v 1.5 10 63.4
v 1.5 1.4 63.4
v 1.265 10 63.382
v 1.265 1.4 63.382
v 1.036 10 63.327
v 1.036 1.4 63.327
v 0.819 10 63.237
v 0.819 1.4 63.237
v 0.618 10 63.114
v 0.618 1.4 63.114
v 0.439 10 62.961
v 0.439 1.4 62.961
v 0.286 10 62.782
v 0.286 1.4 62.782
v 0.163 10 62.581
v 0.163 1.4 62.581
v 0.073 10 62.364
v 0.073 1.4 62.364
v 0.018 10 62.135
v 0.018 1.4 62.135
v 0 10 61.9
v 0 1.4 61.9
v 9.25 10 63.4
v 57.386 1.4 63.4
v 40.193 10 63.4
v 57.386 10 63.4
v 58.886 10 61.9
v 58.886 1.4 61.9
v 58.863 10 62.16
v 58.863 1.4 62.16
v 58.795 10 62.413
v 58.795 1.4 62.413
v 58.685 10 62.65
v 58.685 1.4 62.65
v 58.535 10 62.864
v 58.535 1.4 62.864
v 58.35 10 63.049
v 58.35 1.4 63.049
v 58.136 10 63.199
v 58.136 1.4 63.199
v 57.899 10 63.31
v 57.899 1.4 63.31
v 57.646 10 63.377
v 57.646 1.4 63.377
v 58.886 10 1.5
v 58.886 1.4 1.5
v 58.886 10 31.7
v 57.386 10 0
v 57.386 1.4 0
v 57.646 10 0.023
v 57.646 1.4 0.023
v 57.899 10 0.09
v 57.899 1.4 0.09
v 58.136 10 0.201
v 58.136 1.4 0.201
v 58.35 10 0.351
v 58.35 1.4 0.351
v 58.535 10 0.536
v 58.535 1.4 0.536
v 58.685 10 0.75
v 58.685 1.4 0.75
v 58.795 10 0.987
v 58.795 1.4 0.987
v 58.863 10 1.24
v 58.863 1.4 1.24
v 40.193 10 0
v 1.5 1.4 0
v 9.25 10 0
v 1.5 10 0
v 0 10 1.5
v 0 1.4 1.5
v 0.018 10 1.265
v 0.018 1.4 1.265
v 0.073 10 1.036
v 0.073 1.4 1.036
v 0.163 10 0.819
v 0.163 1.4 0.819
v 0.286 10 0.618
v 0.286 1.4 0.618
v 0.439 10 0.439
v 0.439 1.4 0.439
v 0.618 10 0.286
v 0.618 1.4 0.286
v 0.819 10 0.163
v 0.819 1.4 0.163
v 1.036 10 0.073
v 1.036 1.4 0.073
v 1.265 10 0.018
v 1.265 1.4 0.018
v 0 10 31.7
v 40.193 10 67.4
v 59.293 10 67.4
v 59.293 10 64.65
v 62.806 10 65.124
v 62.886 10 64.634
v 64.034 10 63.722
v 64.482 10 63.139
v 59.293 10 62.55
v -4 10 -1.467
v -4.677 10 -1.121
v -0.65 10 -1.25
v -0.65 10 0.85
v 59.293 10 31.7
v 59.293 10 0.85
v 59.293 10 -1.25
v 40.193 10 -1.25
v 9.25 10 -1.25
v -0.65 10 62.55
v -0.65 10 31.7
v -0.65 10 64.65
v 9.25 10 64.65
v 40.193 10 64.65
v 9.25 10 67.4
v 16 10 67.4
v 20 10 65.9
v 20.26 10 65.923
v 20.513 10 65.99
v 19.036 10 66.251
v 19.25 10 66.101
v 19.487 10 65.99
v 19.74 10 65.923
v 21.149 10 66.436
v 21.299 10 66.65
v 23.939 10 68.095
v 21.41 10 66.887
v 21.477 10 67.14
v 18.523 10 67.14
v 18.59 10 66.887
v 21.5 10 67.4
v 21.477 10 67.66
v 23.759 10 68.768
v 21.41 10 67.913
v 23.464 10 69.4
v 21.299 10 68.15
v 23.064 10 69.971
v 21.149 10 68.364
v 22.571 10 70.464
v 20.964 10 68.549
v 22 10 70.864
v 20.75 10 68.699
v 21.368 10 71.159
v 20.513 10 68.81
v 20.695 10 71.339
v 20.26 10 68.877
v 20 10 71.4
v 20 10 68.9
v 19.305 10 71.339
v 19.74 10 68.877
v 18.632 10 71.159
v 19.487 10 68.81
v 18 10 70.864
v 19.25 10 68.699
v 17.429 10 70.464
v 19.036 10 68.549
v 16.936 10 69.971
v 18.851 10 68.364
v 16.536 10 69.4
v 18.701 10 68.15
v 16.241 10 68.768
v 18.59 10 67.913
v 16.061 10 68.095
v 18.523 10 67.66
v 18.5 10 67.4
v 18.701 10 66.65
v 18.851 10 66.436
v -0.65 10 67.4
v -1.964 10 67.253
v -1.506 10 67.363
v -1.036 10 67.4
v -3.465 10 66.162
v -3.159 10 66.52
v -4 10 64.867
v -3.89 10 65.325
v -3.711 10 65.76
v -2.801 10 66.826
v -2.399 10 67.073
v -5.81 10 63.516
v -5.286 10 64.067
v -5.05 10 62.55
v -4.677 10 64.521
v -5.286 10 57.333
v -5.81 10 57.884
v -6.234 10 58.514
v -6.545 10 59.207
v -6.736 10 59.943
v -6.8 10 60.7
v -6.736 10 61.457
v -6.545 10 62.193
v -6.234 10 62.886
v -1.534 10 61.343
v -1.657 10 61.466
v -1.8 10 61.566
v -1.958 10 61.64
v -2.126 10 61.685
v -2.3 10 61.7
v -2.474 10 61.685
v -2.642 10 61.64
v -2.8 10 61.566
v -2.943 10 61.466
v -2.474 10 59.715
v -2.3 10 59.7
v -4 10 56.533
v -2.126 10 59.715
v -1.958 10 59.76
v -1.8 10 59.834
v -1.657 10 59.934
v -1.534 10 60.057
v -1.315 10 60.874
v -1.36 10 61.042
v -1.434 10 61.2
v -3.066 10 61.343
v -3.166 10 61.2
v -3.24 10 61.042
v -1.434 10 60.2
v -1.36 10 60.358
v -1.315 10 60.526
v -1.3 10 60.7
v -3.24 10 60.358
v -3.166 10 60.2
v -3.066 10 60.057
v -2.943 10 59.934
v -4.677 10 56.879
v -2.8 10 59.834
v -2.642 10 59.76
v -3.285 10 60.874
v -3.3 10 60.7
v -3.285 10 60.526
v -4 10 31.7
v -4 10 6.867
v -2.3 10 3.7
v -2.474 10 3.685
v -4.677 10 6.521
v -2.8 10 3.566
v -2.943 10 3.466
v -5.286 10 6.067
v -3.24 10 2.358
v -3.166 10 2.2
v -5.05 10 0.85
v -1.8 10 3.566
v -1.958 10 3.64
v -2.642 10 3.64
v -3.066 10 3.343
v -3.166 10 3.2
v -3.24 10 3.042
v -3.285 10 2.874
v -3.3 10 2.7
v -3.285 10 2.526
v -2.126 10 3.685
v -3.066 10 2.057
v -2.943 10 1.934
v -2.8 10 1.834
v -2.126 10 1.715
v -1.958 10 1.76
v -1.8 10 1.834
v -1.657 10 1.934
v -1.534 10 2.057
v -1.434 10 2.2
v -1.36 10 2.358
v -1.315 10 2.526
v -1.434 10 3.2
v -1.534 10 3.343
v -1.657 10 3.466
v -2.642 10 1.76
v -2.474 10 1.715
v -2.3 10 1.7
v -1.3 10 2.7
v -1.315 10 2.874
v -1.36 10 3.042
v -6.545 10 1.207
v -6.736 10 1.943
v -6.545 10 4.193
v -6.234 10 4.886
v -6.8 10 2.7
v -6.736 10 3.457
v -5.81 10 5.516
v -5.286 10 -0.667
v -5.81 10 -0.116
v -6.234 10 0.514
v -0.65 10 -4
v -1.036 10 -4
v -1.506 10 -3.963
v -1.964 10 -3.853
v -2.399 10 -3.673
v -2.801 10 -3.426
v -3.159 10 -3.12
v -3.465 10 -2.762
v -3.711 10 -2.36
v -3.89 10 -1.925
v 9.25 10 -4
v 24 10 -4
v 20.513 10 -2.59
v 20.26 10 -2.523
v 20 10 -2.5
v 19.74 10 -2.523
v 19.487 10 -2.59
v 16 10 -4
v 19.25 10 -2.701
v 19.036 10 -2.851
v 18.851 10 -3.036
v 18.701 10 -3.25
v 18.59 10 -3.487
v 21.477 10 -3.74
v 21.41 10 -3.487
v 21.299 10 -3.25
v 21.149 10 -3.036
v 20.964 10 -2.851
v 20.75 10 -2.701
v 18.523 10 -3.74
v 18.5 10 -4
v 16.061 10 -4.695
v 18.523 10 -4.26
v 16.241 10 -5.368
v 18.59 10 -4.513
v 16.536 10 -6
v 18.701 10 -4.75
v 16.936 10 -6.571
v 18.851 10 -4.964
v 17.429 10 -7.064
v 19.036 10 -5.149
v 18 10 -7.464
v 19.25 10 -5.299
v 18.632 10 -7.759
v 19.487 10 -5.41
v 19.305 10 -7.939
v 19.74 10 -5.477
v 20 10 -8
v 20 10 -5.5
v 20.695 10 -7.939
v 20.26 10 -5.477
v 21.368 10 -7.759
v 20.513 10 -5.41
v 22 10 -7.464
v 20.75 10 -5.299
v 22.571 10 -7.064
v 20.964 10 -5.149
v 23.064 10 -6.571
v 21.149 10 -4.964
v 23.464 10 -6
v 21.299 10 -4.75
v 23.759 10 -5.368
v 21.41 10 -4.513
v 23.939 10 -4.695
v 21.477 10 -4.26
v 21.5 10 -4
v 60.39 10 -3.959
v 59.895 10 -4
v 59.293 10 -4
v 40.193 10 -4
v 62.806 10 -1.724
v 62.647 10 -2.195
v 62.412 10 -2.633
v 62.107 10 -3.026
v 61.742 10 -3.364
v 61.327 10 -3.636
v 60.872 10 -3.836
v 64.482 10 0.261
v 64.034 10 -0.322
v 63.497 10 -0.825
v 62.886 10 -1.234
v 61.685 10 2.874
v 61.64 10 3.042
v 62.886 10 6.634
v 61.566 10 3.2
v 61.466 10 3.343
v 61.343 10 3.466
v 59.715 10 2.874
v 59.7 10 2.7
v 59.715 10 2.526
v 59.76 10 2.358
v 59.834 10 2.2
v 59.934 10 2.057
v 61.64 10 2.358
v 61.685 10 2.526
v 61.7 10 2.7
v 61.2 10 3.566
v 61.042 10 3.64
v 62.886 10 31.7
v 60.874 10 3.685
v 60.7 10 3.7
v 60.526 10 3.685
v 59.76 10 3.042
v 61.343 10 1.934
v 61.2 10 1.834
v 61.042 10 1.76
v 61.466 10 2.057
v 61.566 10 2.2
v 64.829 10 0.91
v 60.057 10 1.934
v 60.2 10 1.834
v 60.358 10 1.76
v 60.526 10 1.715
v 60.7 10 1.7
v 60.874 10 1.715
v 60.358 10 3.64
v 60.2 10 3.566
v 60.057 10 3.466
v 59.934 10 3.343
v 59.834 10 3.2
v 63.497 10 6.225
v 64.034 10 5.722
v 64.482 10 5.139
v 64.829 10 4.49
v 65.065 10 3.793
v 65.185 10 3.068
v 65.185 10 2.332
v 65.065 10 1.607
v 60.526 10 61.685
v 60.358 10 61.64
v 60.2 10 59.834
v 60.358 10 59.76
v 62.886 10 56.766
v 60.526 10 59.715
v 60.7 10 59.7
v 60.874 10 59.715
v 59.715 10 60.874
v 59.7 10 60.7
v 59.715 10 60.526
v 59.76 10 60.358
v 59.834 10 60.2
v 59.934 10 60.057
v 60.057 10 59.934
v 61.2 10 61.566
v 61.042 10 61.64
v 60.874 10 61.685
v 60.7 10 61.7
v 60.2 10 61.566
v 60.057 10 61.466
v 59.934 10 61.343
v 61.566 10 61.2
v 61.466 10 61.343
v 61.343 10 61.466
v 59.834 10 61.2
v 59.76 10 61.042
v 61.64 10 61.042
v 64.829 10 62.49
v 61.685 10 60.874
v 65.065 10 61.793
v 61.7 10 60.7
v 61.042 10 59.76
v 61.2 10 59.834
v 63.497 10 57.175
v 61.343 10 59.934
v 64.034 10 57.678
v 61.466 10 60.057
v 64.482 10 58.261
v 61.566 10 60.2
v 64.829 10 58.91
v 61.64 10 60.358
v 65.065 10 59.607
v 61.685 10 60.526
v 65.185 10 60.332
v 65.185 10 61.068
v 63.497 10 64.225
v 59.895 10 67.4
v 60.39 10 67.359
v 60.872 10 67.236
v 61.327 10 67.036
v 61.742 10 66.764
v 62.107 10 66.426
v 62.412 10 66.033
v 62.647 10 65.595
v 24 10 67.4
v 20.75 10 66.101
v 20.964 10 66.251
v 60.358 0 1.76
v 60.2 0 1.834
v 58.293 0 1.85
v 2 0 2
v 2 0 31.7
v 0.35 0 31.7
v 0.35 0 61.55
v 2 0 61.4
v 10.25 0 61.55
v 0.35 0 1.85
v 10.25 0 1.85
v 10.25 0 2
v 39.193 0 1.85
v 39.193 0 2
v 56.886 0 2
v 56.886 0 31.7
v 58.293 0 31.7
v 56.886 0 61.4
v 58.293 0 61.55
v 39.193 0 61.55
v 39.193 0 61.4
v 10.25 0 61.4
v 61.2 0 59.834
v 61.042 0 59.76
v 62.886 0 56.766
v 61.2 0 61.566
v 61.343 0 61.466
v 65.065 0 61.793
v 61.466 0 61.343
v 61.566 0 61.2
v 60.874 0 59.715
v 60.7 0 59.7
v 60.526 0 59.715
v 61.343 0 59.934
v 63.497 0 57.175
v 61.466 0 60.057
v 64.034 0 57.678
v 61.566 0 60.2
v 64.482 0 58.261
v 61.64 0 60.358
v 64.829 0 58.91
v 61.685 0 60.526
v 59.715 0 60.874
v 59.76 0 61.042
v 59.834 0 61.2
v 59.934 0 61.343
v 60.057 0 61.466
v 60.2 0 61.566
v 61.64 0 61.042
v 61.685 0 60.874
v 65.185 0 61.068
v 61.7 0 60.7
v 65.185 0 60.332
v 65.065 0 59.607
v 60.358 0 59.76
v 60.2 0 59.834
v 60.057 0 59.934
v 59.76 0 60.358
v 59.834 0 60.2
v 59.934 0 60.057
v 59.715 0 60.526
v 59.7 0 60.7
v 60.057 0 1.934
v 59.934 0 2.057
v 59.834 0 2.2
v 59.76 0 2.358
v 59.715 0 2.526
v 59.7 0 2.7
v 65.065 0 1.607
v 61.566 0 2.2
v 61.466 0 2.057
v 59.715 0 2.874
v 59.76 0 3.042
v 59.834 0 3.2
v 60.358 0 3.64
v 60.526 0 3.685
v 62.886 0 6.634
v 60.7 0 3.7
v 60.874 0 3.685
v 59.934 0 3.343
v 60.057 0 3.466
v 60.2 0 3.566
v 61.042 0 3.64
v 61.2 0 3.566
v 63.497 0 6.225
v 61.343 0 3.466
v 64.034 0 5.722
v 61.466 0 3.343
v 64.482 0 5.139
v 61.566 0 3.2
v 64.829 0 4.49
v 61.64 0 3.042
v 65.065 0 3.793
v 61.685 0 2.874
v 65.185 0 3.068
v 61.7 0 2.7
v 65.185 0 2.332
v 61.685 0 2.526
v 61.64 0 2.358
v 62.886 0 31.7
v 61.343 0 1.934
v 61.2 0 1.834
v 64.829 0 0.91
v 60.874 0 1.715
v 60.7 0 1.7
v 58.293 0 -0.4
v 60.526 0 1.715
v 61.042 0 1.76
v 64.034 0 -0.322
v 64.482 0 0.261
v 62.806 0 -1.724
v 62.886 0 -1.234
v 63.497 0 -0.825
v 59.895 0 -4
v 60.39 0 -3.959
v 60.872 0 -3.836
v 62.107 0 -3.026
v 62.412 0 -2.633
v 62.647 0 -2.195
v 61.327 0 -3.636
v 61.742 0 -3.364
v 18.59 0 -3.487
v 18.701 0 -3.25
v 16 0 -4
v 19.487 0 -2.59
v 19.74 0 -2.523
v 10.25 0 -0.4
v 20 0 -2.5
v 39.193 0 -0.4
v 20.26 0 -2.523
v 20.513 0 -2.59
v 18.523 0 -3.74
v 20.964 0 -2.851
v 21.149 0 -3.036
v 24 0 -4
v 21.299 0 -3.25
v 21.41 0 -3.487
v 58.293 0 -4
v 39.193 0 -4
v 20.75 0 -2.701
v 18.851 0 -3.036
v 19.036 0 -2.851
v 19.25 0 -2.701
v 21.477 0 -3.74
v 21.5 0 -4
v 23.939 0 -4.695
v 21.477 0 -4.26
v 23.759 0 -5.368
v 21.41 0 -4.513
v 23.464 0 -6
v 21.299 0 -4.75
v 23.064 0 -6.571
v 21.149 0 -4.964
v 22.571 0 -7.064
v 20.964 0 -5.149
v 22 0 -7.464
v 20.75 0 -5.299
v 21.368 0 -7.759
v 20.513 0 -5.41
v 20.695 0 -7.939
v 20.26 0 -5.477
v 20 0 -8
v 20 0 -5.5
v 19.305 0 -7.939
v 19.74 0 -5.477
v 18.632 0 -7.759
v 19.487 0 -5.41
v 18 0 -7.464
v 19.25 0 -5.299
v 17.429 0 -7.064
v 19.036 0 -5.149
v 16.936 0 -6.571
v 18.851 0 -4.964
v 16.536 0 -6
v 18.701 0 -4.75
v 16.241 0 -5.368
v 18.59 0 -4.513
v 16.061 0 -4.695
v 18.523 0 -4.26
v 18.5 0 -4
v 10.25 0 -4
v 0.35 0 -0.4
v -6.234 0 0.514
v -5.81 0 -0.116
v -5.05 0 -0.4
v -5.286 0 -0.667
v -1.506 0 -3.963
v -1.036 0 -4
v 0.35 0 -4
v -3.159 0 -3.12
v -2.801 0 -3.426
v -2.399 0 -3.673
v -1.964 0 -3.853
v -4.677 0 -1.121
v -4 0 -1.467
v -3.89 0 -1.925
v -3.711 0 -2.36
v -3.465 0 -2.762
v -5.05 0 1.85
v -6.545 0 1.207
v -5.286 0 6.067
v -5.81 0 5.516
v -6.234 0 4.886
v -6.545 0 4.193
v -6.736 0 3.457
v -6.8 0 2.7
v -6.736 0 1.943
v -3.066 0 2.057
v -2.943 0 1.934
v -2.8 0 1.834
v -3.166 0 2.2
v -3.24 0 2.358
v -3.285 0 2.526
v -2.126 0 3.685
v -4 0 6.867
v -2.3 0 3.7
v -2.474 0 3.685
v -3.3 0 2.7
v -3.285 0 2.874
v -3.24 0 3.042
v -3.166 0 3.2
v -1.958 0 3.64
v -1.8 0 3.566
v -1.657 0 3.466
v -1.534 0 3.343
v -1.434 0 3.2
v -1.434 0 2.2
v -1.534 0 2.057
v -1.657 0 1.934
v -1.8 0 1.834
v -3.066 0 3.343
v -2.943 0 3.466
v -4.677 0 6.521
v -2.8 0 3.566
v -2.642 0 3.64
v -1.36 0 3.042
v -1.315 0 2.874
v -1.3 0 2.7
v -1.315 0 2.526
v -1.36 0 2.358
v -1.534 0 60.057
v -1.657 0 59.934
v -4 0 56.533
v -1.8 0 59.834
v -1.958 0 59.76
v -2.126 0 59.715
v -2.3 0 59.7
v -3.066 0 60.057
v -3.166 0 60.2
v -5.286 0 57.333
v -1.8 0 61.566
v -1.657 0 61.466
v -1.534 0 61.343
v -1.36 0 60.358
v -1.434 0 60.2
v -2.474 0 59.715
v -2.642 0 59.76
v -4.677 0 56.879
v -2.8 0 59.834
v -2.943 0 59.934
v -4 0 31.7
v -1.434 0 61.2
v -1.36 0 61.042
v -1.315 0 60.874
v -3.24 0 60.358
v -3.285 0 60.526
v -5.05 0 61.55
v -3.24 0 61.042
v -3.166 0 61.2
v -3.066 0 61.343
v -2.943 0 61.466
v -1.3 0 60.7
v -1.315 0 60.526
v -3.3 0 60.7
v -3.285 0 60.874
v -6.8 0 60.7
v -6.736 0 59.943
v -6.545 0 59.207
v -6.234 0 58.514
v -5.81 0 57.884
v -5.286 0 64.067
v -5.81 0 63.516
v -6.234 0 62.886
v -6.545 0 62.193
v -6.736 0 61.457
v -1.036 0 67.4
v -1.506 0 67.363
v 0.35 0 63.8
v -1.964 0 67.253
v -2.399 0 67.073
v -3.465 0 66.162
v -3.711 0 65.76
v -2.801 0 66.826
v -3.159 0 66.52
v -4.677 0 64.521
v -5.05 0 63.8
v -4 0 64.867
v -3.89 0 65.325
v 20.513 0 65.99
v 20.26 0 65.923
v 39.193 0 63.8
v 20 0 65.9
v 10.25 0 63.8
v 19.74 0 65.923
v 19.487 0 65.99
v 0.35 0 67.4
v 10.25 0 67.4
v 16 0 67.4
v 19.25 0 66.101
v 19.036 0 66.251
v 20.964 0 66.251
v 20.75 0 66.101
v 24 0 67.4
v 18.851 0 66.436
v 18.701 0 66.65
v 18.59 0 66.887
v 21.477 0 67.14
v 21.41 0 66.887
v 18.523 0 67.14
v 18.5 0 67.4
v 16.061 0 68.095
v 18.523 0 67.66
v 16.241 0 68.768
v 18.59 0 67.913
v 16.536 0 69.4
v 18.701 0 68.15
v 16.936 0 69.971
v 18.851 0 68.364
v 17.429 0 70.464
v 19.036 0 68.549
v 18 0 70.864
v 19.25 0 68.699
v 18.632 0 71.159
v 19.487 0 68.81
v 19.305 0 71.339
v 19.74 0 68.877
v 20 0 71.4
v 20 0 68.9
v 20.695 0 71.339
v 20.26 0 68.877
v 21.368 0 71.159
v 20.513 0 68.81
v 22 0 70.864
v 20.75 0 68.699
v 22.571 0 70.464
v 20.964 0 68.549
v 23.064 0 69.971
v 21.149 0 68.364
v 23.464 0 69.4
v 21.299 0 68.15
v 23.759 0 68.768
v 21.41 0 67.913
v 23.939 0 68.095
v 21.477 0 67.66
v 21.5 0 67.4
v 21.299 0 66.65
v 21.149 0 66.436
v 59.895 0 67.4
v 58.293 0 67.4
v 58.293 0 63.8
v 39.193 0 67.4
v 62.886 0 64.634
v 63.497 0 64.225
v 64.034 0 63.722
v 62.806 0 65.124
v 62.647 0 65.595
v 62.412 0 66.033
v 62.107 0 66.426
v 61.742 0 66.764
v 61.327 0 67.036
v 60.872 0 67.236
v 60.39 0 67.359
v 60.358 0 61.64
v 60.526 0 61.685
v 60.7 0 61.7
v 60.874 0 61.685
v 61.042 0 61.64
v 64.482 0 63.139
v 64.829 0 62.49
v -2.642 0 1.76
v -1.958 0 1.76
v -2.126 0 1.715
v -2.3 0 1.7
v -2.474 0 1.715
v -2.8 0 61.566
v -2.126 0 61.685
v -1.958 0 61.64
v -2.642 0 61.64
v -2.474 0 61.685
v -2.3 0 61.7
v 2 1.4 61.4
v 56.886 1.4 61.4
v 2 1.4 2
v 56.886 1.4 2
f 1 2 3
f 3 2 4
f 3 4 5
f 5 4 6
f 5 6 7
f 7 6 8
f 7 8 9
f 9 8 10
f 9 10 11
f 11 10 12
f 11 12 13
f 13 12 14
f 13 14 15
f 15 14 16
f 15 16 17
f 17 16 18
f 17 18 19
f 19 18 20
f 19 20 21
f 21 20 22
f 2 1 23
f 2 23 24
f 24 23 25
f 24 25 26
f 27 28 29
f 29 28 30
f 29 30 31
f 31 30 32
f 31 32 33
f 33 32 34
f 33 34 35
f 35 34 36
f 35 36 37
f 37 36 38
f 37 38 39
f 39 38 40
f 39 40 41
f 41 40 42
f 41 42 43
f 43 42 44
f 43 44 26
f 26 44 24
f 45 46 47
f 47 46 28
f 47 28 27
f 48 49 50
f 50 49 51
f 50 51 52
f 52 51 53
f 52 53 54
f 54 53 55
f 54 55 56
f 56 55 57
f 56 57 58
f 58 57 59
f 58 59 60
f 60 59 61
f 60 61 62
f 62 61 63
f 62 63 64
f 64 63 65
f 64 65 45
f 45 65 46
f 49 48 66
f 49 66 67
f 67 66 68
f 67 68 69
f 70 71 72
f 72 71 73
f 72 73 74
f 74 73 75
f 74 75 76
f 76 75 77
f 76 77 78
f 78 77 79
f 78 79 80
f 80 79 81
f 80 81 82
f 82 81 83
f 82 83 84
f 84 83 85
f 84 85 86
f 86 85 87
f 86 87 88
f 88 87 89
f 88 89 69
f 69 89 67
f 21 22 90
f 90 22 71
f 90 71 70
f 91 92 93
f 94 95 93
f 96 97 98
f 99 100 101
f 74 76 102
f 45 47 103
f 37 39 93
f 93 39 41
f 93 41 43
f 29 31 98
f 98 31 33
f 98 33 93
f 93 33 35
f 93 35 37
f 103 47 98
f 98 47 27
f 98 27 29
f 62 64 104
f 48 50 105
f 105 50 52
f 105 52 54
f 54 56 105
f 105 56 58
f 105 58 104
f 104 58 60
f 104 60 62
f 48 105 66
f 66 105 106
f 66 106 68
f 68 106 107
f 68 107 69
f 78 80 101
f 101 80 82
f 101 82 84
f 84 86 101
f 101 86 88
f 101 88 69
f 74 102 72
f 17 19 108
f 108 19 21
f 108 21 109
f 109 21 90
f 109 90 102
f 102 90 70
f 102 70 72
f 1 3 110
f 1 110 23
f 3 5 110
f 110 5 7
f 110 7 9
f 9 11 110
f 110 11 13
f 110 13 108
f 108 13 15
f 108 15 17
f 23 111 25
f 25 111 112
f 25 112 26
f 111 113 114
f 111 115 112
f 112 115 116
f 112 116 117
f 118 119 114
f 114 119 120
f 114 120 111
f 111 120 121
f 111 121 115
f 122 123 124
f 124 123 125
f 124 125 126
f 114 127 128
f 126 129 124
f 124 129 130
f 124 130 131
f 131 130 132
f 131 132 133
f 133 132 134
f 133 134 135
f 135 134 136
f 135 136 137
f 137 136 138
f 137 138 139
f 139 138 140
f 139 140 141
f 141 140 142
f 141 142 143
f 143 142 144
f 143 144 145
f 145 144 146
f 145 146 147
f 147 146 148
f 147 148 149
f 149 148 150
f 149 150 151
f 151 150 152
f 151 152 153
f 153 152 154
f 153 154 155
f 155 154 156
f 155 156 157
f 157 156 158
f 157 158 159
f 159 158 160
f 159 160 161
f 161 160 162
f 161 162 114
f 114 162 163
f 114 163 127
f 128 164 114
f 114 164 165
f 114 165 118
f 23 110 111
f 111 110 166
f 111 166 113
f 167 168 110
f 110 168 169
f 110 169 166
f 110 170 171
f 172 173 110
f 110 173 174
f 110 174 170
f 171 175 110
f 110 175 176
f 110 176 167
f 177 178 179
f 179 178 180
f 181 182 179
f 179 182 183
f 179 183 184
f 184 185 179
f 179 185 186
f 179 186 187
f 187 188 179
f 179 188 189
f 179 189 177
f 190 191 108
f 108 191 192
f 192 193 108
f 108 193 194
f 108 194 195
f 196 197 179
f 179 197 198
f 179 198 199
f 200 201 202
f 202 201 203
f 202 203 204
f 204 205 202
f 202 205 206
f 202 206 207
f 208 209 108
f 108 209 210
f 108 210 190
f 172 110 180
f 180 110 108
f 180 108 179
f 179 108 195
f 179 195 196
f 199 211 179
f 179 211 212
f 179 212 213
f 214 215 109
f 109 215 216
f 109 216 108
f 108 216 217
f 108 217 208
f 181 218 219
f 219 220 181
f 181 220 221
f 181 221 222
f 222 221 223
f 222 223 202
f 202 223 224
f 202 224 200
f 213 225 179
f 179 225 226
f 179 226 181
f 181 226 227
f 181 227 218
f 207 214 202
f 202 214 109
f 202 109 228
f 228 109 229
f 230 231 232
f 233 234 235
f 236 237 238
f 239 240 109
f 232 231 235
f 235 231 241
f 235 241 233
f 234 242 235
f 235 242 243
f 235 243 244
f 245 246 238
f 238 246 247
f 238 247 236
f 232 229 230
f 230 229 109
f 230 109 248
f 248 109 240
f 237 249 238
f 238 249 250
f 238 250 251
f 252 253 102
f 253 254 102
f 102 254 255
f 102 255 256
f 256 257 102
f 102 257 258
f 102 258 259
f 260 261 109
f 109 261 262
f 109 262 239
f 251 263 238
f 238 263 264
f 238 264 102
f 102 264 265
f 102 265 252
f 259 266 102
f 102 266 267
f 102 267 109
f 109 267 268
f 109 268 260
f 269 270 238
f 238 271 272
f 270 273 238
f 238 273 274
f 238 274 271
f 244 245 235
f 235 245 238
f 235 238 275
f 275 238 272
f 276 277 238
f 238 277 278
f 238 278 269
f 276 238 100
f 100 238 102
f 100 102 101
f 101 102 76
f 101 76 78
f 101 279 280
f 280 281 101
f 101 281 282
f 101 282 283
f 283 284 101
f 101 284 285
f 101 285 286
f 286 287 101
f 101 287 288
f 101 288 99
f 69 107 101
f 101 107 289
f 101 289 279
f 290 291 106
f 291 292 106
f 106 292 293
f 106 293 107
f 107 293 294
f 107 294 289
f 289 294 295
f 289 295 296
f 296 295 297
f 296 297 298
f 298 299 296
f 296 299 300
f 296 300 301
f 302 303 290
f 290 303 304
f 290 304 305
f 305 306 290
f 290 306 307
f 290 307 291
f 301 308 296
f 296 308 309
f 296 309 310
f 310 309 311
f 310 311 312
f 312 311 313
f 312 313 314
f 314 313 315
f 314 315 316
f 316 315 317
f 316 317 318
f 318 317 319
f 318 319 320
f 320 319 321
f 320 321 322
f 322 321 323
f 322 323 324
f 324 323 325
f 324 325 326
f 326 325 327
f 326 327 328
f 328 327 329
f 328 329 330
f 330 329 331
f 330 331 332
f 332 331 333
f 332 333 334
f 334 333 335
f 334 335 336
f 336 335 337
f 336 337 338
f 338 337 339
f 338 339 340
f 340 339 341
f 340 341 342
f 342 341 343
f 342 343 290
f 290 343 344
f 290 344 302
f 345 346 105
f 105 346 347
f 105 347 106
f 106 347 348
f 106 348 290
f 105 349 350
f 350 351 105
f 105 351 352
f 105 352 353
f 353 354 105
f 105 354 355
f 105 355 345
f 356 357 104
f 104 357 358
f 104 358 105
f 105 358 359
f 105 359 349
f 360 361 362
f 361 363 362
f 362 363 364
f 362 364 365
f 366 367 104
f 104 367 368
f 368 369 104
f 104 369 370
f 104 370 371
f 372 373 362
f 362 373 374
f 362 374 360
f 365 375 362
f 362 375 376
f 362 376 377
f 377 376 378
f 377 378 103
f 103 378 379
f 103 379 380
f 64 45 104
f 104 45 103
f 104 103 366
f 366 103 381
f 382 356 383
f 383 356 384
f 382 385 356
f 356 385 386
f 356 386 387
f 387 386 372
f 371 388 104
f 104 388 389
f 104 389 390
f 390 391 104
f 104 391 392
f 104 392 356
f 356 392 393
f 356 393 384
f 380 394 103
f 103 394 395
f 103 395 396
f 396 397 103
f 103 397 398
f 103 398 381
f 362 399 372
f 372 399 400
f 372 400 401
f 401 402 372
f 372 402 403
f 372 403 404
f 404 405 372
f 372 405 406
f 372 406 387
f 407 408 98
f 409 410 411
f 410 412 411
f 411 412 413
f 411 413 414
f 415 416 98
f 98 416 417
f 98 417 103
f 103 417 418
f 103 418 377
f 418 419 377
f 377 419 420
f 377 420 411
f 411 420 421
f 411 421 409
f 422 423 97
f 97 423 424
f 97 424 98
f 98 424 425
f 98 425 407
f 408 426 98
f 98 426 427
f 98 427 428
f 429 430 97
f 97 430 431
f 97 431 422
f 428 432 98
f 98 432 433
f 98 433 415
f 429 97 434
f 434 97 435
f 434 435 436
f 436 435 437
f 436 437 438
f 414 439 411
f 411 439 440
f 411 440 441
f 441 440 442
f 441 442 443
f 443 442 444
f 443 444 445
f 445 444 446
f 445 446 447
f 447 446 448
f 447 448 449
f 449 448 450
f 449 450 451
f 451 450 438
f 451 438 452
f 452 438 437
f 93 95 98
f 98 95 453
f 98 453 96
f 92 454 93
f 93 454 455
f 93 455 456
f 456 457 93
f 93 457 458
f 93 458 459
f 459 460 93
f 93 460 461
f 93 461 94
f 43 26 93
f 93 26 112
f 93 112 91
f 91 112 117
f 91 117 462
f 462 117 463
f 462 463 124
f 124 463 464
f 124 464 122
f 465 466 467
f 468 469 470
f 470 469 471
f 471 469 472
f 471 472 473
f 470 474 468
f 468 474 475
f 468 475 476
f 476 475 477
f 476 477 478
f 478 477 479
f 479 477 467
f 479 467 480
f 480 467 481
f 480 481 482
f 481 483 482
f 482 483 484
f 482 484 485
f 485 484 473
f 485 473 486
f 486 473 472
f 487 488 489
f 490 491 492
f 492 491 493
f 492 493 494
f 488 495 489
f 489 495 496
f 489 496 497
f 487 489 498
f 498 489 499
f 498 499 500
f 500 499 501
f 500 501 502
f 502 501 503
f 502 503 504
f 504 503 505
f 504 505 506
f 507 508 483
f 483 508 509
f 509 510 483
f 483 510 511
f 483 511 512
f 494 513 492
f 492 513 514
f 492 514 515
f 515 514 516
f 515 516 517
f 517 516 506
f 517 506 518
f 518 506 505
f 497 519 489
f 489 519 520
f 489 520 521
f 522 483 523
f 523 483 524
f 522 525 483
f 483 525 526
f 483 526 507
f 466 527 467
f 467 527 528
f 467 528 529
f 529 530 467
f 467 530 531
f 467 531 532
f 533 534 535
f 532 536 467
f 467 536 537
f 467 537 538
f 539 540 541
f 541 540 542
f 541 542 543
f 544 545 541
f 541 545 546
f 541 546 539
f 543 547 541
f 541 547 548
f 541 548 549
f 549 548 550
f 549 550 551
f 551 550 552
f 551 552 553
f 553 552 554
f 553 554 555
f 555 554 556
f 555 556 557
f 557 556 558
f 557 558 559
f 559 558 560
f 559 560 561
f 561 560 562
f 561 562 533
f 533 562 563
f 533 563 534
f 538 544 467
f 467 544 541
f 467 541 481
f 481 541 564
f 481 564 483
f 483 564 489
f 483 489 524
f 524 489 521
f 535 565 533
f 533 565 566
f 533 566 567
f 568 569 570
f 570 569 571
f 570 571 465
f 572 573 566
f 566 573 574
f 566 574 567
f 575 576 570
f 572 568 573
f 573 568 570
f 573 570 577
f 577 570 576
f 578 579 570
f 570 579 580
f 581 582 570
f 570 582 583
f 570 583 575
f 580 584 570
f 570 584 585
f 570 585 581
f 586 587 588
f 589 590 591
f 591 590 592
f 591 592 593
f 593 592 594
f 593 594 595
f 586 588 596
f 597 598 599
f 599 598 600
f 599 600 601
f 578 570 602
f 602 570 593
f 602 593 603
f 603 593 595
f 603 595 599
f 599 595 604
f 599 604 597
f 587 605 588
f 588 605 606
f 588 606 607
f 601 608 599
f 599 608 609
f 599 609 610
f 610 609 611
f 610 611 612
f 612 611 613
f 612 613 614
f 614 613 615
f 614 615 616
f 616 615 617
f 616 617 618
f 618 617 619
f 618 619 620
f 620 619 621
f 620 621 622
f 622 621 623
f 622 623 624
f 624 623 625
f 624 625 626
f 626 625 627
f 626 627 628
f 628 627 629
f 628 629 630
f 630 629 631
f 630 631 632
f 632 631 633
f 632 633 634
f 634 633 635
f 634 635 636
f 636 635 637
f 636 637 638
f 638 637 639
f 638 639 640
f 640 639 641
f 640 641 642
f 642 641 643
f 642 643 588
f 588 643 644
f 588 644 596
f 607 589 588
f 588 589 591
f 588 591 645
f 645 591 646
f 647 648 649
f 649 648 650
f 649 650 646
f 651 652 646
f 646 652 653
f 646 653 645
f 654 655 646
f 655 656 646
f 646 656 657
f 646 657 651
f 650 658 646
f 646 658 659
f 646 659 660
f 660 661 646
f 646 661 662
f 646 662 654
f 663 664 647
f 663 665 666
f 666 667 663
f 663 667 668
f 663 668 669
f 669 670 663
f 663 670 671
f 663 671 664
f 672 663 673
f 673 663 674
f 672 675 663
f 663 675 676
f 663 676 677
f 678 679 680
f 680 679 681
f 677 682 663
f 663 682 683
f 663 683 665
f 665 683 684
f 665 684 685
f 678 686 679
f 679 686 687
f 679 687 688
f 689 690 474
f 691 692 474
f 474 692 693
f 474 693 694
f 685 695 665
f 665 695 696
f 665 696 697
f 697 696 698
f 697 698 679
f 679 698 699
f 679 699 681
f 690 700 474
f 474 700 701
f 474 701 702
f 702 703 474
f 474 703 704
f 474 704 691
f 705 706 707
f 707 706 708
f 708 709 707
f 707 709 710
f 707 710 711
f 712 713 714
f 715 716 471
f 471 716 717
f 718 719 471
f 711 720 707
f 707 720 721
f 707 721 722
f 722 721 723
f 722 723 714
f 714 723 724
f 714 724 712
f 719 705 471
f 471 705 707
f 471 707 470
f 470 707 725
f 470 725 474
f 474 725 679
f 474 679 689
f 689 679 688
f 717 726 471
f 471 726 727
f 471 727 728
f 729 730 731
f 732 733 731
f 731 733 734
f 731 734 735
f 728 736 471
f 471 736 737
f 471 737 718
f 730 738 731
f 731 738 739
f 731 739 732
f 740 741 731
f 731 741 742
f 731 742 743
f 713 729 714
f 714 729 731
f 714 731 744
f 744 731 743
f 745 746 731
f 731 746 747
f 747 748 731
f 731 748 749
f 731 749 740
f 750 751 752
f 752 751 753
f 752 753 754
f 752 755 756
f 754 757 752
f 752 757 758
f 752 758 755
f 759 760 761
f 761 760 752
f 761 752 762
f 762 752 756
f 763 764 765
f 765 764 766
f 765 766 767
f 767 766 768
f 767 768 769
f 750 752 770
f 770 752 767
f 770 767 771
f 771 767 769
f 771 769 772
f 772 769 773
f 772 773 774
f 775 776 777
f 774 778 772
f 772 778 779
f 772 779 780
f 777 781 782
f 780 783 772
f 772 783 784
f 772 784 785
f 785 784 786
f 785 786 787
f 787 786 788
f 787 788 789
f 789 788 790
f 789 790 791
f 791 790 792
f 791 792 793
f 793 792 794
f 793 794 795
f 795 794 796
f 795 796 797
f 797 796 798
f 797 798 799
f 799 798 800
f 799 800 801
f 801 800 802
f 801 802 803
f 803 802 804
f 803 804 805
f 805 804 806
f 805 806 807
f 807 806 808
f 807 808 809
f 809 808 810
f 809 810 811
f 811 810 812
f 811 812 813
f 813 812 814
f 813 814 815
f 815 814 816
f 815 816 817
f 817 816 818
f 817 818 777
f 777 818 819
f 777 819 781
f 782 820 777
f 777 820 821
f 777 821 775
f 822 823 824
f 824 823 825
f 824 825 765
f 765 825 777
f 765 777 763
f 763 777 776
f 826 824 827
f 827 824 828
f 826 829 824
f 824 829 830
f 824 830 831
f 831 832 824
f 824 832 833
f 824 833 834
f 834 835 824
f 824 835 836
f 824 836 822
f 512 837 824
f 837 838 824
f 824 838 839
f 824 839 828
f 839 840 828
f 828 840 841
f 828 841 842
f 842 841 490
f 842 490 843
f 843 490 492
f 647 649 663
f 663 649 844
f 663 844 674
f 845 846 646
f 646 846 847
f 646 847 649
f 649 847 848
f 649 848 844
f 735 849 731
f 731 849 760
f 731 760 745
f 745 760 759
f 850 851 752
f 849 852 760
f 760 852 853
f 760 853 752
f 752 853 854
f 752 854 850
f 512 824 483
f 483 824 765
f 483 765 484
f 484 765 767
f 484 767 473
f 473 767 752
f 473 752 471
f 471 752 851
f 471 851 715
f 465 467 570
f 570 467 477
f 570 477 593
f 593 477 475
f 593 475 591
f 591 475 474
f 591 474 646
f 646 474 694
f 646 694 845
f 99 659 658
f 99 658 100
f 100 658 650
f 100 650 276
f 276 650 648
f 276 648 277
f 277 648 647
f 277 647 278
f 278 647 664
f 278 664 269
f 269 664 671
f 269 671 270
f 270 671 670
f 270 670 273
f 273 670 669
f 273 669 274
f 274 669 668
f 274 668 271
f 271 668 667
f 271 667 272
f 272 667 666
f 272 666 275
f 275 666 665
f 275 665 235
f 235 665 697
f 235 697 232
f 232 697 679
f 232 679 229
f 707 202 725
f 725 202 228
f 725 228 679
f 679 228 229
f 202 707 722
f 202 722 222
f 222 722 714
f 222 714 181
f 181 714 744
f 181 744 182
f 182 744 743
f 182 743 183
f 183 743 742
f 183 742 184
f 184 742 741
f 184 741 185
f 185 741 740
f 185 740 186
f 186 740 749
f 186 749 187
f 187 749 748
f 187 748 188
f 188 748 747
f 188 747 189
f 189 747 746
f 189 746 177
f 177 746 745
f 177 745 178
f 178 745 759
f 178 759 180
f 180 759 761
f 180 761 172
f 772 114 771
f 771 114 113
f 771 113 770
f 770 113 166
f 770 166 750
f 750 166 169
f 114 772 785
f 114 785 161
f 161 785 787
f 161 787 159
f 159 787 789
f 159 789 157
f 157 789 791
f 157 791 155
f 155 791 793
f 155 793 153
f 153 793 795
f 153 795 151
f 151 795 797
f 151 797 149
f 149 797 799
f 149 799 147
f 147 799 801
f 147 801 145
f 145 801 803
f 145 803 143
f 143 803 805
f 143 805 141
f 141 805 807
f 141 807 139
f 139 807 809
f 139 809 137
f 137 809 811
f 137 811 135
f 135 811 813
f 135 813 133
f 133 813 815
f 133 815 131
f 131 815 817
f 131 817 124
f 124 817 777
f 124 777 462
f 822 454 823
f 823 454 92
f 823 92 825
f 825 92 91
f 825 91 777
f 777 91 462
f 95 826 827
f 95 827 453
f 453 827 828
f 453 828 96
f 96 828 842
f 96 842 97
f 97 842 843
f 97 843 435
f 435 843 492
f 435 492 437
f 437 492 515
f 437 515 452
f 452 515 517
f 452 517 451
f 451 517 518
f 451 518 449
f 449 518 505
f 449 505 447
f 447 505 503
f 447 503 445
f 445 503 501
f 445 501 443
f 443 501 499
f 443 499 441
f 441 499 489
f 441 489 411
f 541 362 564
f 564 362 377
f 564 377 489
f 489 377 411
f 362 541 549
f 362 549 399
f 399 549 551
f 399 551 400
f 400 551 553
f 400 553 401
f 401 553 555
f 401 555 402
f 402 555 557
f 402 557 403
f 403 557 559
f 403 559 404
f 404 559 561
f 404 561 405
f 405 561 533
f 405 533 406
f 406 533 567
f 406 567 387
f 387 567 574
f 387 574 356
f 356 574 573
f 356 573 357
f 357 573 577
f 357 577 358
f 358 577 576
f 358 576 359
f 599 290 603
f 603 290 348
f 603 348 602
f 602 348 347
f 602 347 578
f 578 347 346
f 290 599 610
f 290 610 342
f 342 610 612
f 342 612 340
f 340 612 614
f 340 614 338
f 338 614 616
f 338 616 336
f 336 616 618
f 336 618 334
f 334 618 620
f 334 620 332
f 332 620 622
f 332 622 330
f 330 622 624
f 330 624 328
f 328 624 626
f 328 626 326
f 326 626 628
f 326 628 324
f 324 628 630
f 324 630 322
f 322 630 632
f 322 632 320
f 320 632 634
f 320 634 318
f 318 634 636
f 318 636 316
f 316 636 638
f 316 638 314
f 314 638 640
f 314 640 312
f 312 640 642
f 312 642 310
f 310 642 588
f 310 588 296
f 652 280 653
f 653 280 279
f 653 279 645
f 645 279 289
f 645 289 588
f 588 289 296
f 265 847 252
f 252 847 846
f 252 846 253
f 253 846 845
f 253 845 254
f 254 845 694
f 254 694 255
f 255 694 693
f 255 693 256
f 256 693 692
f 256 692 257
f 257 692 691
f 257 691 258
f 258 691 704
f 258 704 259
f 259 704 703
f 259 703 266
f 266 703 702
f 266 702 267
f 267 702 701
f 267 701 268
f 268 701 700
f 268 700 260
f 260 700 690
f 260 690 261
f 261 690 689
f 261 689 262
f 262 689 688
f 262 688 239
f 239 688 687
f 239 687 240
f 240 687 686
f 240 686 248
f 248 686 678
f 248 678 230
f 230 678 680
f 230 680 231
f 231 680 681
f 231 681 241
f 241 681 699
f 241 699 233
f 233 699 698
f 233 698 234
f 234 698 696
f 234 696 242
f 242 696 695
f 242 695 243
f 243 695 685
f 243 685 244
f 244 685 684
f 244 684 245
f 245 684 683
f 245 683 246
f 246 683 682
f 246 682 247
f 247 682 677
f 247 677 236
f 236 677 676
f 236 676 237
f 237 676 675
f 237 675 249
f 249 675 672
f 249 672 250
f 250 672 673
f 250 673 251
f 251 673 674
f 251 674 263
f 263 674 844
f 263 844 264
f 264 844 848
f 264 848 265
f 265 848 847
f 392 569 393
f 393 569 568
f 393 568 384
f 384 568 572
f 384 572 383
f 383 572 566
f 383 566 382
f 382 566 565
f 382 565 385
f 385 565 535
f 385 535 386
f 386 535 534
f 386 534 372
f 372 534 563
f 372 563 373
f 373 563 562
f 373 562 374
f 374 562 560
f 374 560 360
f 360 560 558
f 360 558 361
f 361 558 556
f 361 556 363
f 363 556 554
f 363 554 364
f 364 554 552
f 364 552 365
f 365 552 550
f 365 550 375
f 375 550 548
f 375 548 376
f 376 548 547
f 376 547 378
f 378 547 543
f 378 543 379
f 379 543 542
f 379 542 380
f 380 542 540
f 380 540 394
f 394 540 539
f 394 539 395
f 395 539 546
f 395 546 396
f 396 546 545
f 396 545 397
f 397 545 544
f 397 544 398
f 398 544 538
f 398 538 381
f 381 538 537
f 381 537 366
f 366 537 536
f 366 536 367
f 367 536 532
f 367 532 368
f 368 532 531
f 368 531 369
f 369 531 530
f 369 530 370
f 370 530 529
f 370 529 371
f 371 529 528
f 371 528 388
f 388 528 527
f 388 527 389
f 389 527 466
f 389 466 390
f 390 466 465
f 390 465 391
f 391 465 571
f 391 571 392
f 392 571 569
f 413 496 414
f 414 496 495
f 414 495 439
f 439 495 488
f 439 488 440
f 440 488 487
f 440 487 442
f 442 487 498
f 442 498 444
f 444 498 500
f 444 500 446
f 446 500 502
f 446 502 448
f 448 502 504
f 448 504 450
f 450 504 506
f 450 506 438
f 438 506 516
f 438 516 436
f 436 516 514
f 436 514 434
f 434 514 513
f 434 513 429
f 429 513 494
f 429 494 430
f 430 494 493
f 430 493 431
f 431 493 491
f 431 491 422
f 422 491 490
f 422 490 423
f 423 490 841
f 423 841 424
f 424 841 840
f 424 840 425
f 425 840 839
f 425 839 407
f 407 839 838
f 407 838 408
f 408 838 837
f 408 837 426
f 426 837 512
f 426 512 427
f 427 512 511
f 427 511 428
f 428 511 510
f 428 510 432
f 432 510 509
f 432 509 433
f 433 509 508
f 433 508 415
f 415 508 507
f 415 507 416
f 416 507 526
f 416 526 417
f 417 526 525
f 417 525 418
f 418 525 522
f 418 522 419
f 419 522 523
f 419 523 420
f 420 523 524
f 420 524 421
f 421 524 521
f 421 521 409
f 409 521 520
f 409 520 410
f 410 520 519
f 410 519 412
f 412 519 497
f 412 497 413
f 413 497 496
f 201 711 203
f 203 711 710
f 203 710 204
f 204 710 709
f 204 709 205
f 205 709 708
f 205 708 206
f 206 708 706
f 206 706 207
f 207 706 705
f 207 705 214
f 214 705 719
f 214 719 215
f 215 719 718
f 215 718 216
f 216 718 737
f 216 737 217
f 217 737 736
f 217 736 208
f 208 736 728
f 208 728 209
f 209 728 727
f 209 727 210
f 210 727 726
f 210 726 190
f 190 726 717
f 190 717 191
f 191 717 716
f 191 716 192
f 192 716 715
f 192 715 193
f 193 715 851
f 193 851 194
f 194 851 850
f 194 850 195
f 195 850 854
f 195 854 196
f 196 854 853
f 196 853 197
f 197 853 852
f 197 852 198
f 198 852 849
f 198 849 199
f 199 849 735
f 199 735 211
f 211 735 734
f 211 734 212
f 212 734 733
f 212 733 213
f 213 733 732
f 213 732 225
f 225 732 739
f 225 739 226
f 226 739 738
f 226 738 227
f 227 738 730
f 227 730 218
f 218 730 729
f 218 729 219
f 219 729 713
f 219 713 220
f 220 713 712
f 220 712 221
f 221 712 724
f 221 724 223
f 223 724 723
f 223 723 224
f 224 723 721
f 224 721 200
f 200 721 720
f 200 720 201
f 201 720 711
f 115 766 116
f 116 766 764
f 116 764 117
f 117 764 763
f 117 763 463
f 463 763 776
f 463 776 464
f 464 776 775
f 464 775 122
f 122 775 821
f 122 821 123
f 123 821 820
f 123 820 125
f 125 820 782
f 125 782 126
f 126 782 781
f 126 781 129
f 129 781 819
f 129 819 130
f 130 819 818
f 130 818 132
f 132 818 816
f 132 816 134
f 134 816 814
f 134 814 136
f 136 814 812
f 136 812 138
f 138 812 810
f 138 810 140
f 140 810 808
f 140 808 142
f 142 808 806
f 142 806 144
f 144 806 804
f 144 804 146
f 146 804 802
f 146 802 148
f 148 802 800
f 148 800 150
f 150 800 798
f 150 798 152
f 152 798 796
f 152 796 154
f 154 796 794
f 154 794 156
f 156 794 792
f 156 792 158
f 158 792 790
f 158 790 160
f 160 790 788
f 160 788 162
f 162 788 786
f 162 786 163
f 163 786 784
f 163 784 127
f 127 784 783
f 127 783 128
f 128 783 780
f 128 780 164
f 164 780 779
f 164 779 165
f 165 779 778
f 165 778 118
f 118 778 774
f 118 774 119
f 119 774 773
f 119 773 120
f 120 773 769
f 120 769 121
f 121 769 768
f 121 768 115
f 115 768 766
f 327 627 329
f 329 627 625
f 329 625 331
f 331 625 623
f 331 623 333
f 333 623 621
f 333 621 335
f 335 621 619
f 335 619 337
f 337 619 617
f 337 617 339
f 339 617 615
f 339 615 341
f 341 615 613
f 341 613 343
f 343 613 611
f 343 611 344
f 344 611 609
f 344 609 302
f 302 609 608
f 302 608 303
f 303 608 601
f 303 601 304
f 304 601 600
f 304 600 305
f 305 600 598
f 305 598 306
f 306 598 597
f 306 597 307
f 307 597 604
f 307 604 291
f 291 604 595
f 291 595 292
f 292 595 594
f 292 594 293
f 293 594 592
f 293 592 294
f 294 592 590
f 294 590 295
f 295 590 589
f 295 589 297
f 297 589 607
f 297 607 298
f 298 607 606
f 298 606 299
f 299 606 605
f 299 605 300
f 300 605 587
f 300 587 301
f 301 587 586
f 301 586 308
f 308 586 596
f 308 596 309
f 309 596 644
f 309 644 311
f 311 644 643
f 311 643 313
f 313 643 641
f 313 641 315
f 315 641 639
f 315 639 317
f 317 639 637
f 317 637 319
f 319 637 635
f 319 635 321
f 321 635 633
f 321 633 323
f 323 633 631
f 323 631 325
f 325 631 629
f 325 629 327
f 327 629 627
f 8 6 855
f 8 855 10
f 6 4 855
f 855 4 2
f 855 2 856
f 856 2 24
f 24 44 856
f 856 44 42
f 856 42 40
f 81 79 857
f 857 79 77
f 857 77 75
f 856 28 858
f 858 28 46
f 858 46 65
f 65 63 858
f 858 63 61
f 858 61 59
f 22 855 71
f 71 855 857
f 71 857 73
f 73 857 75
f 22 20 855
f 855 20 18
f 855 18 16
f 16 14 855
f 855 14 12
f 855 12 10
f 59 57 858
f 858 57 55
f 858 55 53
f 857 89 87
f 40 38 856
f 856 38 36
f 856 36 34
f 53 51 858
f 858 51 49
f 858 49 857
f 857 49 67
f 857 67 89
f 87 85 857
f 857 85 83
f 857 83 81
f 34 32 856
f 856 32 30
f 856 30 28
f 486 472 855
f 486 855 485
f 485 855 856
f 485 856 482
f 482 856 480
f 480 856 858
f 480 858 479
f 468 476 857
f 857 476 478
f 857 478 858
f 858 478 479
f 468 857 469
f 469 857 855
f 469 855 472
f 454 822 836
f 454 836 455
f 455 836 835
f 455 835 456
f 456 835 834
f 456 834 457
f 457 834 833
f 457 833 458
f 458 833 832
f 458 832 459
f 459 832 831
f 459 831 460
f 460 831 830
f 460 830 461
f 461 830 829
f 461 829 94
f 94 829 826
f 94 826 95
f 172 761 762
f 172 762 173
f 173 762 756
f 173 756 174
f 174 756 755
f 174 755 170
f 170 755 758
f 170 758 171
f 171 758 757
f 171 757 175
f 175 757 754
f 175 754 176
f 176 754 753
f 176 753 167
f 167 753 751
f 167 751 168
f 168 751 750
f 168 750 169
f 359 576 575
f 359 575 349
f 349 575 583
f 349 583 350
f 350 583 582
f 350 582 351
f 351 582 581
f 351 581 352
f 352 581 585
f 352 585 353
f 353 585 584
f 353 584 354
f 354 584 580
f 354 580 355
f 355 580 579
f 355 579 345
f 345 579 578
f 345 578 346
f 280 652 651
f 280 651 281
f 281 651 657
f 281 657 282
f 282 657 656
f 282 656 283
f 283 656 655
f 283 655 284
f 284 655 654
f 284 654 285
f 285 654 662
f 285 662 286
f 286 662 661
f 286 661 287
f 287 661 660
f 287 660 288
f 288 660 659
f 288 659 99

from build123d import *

# Parameters (mm, degrees)
SKETCH_1_R      = 1
SKETCH_1_R_2    = 1.5
EXTRUDE_1_DEPTH = 10
SKETCH_3_W      = 58.885714286
SKETCH_3_H      = 63.4
SKETCH_3_W_2    = 54.885714286
SKETCH_3_H_2    = 59.4
EXTRUDE_2_DEPTH = 1.4
FILLET_1_R      = 3


with BuildPart() as part:
    # Эскиз1 → Бобышка-Вытянуть1 (new body)
    with BuildSketch(Plane(origin=(0, 0, 0), x_dir=(1, 0, 0), z_dir=(0, 1, 0))):
        with BuildLine():
            Line((-4, 4), (16, 4))
            ThreePointArc((16, 4), (20, 8), (24, 4))
            Line((24, 4), (62.885714286, 4))
            Line((62.885714286, 4), (62.885714286, 1.233529339))
            ThreePointArc((62.885714286, 1.233529339), (65.2, -2.7), (62.885714286, -6.633529339))
            Line((62.885714286, -6.633529339), (62.885714286, -56.766470661))
            ThreePointArc((62.885714286, -56.766470661), (65.2, -60.7), (62.885714286, -64.633529339))
            Line((62.885714286, -64.633529339), (62.885714286, -67.4))
            Line((62.885714286, -67.4), (24, -67.4))
            ThreePointArc((24, -67.4), (20, -71.4), (16, -67.4))
            Line((16, -67.4), (-4, -67.4))
            Line((-4, -67.4), (-4, -64.866533331))
            ThreePointArc((-4, -64.866533331), (-6.8, -60.7), (-4, -56.533466669))
            Line((-4, -56.533466669), (-4, -6.866533331))
            ThreePointArc((-4, -6.866533331), (-6.8, -2.7), (-4, 1.466533331))
            Line((-4, 1.466533331), (-4, 4))
        make_face()
        with Locations(Location((-2.3, -2.7, 0), (0, 0, 270))):
            Circle(SKETCH_1_R, mode=Mode.SUBTRACT)
        with Locations(Location((60.7, -2.7, 0), (0, 0, 270))):
            Circle(SKETCH_1_R, mode=Mode.SUBTRACT)
        with Locations(Location((60.7, -60.7, 0), (0, 0, 270))):
            Circle(SKETCH_1_R, mode=Mode.SUBTRACT)
        with Locations(Location((-2.3, -60.7, 0), (0, 0, 270))):
            Circle(SKETCH_1_R, mode=Mode.SUBTRACT)
        with Locations(Location((20, -67.4, 0), (0, 0, 270))):
            Circle(SKETCH_1_R_2, mode=Mode.SUBTRACT)
        with Locations(Location((20, 4, 0), (0, 0, 270))):
            Circle(SKETCH_1_R_2, mode=Mode.SUBTRACT)
        with BuildLine():
            Line((1.5, 0), (57.385714286, 0))
            ThreePointArc((57.385714286, 0), (58.446374457, -0.439339828), (58.885714286, -1.5))
            Line((58.885714286, -1.5), (58.885714286, -61.9))
            ThreePointArc((58.885714286, -61.9), (58.446374457, -62.960660172), (57.385714286, -63.4))
            Line((57.385714286, -63.4), (1.5, -63.4))
            ThreePointArc((1.5, -63.4), (0.439339828, -62.960660172), (0, -61.9))
            Line((0, -61.9), (0, -1.5))
            ThreePointArc((0, -1.5), (0.439339828, -0.439339828), (1.5, 0))
        make_face(mode=Mode.SUBTRACT)
    extrude(amount=EXTRUDE_1_DEPTH)

    # Эскиз3 → Бобышка-Вытянуть2 (add)
    with BuildSketch(Plane.XZ):
        with Locations((29.442857143, 31.7)):
            Rectangle(SKETCH_3_W, SKETCH_3_H)
        with Locations((29.442857143, 31.7)):
            Rectangle(SKETCH_3_W_2, SKETCH_3_H_2, mode=Mode.SUBTRACT)
    extrude(amount=-EXTRUDE_2_DEPTH)

    # Скругление1
    # the kernel refuses this fillet: 3 mm, written as the material it takes off along each edge
    with BuildSketch(Plane(origin=(62.885714286, -7.477242159, 67.4), x_dir=(-1, 0, 0), z_dir=(0, 1, 0))) as fillet_1_piece_1:
        with BuildLine():
            CenterArc((2.990896863, -3), FILLET_1_R, 90, 85.535401485)
            Line((0, -2.766470661), (-0.059817937, -2.761800074))
            ThreePointArc((-0.059817937, -2.761800074), (-0.06, -1.38323533), (-0.06, 0))
            Line((-0.06, 0), (0, 0.06))
            Line((0, 0.06), (2.990896863, 0.06))
            Line((2.990896863, 0.06), (2.990896863, 0))
        make_face()
    extrude(amount=24.954484317, mode=Mode.SUBTRACT)
    with BuildSketch(Plane(origin=(-4, -7.408756074, 67.4), x_dir=(0, 0, -1), z_dir=(0, 1, 0))) as fillet_1_piece_2:
        with BuildLine():
            CenterArc((3, -2.96350243), FILLET_1_R, 98.946440174, 81.053559826)
            Line((0, -2.96350243), (-0.06, -2.96350243))
            Line((-0.06, -2.96350243), (-0.06, 0))
            Line((-0.06, 0), (0, 0.06))
            ThreePointArc((0, 0.06), (1.266733334, 0.06), (2.524136002, 0.059270049))
            Line((2.524136002, 0.059270049), (2.533466669, 0))
        make_face()
    extrude(amount=24.817512149, mode=Mode.SUBTRACT)
    with BuildSketch(Plane(origin=(62.885714286, -7.477242159, -4), x_dir=(-1, 0, 0), z_dir=(0, 1, 0))) as fillet_1_piece_3:
        with BuildLine():
            CenterArc((2.990896863, 3), FILLET_1_R, 184.464598515, 85.535401485)
            Line((0, 2.766470661), (-0.059817937, 2.761800074))
            ThreePointArc((-0.059817937, 2.761800074), (-0.06, 1.38323533), (-0.06, 0))
            Line((-0.06, 0), (0, -0.06))
            Line((0, -0.06), (2.990896863, -0.06))
            Line((2.990896863, -0.06), (2.990896863, 0))
        make_face()
    extrude(amount=24.954484317, mode=Mode.SUBTRACT)
    with BuildSketch(Plane(origin=(-4, -7.408756074, -4), x_dir=(0, 0, 1), z_dir=(0, 1, 0))) as fillet_1_piece_4:
        with BuildLine():
            CenterArc((3, 2.96350243), FILLET_1_R, 180, 81.053559826)
            Line((0, 2.96350243), (-0.06, 2.96350243))
            Line((-0.06, 2.96350243), (-0.06, 0))
            Line((-0.06, 0), (0, -0.06))
            ThreePointArc((0, -0.06), (1.266733334, -0.06), (2.524136002, -0.059270049))
            Line((2.524136002, -0.059270049), (2.533466669, 0))
        make_face()
    extrude(amount=24.817512149, mode=Mode.SUBTRACT)


solid = part.part
